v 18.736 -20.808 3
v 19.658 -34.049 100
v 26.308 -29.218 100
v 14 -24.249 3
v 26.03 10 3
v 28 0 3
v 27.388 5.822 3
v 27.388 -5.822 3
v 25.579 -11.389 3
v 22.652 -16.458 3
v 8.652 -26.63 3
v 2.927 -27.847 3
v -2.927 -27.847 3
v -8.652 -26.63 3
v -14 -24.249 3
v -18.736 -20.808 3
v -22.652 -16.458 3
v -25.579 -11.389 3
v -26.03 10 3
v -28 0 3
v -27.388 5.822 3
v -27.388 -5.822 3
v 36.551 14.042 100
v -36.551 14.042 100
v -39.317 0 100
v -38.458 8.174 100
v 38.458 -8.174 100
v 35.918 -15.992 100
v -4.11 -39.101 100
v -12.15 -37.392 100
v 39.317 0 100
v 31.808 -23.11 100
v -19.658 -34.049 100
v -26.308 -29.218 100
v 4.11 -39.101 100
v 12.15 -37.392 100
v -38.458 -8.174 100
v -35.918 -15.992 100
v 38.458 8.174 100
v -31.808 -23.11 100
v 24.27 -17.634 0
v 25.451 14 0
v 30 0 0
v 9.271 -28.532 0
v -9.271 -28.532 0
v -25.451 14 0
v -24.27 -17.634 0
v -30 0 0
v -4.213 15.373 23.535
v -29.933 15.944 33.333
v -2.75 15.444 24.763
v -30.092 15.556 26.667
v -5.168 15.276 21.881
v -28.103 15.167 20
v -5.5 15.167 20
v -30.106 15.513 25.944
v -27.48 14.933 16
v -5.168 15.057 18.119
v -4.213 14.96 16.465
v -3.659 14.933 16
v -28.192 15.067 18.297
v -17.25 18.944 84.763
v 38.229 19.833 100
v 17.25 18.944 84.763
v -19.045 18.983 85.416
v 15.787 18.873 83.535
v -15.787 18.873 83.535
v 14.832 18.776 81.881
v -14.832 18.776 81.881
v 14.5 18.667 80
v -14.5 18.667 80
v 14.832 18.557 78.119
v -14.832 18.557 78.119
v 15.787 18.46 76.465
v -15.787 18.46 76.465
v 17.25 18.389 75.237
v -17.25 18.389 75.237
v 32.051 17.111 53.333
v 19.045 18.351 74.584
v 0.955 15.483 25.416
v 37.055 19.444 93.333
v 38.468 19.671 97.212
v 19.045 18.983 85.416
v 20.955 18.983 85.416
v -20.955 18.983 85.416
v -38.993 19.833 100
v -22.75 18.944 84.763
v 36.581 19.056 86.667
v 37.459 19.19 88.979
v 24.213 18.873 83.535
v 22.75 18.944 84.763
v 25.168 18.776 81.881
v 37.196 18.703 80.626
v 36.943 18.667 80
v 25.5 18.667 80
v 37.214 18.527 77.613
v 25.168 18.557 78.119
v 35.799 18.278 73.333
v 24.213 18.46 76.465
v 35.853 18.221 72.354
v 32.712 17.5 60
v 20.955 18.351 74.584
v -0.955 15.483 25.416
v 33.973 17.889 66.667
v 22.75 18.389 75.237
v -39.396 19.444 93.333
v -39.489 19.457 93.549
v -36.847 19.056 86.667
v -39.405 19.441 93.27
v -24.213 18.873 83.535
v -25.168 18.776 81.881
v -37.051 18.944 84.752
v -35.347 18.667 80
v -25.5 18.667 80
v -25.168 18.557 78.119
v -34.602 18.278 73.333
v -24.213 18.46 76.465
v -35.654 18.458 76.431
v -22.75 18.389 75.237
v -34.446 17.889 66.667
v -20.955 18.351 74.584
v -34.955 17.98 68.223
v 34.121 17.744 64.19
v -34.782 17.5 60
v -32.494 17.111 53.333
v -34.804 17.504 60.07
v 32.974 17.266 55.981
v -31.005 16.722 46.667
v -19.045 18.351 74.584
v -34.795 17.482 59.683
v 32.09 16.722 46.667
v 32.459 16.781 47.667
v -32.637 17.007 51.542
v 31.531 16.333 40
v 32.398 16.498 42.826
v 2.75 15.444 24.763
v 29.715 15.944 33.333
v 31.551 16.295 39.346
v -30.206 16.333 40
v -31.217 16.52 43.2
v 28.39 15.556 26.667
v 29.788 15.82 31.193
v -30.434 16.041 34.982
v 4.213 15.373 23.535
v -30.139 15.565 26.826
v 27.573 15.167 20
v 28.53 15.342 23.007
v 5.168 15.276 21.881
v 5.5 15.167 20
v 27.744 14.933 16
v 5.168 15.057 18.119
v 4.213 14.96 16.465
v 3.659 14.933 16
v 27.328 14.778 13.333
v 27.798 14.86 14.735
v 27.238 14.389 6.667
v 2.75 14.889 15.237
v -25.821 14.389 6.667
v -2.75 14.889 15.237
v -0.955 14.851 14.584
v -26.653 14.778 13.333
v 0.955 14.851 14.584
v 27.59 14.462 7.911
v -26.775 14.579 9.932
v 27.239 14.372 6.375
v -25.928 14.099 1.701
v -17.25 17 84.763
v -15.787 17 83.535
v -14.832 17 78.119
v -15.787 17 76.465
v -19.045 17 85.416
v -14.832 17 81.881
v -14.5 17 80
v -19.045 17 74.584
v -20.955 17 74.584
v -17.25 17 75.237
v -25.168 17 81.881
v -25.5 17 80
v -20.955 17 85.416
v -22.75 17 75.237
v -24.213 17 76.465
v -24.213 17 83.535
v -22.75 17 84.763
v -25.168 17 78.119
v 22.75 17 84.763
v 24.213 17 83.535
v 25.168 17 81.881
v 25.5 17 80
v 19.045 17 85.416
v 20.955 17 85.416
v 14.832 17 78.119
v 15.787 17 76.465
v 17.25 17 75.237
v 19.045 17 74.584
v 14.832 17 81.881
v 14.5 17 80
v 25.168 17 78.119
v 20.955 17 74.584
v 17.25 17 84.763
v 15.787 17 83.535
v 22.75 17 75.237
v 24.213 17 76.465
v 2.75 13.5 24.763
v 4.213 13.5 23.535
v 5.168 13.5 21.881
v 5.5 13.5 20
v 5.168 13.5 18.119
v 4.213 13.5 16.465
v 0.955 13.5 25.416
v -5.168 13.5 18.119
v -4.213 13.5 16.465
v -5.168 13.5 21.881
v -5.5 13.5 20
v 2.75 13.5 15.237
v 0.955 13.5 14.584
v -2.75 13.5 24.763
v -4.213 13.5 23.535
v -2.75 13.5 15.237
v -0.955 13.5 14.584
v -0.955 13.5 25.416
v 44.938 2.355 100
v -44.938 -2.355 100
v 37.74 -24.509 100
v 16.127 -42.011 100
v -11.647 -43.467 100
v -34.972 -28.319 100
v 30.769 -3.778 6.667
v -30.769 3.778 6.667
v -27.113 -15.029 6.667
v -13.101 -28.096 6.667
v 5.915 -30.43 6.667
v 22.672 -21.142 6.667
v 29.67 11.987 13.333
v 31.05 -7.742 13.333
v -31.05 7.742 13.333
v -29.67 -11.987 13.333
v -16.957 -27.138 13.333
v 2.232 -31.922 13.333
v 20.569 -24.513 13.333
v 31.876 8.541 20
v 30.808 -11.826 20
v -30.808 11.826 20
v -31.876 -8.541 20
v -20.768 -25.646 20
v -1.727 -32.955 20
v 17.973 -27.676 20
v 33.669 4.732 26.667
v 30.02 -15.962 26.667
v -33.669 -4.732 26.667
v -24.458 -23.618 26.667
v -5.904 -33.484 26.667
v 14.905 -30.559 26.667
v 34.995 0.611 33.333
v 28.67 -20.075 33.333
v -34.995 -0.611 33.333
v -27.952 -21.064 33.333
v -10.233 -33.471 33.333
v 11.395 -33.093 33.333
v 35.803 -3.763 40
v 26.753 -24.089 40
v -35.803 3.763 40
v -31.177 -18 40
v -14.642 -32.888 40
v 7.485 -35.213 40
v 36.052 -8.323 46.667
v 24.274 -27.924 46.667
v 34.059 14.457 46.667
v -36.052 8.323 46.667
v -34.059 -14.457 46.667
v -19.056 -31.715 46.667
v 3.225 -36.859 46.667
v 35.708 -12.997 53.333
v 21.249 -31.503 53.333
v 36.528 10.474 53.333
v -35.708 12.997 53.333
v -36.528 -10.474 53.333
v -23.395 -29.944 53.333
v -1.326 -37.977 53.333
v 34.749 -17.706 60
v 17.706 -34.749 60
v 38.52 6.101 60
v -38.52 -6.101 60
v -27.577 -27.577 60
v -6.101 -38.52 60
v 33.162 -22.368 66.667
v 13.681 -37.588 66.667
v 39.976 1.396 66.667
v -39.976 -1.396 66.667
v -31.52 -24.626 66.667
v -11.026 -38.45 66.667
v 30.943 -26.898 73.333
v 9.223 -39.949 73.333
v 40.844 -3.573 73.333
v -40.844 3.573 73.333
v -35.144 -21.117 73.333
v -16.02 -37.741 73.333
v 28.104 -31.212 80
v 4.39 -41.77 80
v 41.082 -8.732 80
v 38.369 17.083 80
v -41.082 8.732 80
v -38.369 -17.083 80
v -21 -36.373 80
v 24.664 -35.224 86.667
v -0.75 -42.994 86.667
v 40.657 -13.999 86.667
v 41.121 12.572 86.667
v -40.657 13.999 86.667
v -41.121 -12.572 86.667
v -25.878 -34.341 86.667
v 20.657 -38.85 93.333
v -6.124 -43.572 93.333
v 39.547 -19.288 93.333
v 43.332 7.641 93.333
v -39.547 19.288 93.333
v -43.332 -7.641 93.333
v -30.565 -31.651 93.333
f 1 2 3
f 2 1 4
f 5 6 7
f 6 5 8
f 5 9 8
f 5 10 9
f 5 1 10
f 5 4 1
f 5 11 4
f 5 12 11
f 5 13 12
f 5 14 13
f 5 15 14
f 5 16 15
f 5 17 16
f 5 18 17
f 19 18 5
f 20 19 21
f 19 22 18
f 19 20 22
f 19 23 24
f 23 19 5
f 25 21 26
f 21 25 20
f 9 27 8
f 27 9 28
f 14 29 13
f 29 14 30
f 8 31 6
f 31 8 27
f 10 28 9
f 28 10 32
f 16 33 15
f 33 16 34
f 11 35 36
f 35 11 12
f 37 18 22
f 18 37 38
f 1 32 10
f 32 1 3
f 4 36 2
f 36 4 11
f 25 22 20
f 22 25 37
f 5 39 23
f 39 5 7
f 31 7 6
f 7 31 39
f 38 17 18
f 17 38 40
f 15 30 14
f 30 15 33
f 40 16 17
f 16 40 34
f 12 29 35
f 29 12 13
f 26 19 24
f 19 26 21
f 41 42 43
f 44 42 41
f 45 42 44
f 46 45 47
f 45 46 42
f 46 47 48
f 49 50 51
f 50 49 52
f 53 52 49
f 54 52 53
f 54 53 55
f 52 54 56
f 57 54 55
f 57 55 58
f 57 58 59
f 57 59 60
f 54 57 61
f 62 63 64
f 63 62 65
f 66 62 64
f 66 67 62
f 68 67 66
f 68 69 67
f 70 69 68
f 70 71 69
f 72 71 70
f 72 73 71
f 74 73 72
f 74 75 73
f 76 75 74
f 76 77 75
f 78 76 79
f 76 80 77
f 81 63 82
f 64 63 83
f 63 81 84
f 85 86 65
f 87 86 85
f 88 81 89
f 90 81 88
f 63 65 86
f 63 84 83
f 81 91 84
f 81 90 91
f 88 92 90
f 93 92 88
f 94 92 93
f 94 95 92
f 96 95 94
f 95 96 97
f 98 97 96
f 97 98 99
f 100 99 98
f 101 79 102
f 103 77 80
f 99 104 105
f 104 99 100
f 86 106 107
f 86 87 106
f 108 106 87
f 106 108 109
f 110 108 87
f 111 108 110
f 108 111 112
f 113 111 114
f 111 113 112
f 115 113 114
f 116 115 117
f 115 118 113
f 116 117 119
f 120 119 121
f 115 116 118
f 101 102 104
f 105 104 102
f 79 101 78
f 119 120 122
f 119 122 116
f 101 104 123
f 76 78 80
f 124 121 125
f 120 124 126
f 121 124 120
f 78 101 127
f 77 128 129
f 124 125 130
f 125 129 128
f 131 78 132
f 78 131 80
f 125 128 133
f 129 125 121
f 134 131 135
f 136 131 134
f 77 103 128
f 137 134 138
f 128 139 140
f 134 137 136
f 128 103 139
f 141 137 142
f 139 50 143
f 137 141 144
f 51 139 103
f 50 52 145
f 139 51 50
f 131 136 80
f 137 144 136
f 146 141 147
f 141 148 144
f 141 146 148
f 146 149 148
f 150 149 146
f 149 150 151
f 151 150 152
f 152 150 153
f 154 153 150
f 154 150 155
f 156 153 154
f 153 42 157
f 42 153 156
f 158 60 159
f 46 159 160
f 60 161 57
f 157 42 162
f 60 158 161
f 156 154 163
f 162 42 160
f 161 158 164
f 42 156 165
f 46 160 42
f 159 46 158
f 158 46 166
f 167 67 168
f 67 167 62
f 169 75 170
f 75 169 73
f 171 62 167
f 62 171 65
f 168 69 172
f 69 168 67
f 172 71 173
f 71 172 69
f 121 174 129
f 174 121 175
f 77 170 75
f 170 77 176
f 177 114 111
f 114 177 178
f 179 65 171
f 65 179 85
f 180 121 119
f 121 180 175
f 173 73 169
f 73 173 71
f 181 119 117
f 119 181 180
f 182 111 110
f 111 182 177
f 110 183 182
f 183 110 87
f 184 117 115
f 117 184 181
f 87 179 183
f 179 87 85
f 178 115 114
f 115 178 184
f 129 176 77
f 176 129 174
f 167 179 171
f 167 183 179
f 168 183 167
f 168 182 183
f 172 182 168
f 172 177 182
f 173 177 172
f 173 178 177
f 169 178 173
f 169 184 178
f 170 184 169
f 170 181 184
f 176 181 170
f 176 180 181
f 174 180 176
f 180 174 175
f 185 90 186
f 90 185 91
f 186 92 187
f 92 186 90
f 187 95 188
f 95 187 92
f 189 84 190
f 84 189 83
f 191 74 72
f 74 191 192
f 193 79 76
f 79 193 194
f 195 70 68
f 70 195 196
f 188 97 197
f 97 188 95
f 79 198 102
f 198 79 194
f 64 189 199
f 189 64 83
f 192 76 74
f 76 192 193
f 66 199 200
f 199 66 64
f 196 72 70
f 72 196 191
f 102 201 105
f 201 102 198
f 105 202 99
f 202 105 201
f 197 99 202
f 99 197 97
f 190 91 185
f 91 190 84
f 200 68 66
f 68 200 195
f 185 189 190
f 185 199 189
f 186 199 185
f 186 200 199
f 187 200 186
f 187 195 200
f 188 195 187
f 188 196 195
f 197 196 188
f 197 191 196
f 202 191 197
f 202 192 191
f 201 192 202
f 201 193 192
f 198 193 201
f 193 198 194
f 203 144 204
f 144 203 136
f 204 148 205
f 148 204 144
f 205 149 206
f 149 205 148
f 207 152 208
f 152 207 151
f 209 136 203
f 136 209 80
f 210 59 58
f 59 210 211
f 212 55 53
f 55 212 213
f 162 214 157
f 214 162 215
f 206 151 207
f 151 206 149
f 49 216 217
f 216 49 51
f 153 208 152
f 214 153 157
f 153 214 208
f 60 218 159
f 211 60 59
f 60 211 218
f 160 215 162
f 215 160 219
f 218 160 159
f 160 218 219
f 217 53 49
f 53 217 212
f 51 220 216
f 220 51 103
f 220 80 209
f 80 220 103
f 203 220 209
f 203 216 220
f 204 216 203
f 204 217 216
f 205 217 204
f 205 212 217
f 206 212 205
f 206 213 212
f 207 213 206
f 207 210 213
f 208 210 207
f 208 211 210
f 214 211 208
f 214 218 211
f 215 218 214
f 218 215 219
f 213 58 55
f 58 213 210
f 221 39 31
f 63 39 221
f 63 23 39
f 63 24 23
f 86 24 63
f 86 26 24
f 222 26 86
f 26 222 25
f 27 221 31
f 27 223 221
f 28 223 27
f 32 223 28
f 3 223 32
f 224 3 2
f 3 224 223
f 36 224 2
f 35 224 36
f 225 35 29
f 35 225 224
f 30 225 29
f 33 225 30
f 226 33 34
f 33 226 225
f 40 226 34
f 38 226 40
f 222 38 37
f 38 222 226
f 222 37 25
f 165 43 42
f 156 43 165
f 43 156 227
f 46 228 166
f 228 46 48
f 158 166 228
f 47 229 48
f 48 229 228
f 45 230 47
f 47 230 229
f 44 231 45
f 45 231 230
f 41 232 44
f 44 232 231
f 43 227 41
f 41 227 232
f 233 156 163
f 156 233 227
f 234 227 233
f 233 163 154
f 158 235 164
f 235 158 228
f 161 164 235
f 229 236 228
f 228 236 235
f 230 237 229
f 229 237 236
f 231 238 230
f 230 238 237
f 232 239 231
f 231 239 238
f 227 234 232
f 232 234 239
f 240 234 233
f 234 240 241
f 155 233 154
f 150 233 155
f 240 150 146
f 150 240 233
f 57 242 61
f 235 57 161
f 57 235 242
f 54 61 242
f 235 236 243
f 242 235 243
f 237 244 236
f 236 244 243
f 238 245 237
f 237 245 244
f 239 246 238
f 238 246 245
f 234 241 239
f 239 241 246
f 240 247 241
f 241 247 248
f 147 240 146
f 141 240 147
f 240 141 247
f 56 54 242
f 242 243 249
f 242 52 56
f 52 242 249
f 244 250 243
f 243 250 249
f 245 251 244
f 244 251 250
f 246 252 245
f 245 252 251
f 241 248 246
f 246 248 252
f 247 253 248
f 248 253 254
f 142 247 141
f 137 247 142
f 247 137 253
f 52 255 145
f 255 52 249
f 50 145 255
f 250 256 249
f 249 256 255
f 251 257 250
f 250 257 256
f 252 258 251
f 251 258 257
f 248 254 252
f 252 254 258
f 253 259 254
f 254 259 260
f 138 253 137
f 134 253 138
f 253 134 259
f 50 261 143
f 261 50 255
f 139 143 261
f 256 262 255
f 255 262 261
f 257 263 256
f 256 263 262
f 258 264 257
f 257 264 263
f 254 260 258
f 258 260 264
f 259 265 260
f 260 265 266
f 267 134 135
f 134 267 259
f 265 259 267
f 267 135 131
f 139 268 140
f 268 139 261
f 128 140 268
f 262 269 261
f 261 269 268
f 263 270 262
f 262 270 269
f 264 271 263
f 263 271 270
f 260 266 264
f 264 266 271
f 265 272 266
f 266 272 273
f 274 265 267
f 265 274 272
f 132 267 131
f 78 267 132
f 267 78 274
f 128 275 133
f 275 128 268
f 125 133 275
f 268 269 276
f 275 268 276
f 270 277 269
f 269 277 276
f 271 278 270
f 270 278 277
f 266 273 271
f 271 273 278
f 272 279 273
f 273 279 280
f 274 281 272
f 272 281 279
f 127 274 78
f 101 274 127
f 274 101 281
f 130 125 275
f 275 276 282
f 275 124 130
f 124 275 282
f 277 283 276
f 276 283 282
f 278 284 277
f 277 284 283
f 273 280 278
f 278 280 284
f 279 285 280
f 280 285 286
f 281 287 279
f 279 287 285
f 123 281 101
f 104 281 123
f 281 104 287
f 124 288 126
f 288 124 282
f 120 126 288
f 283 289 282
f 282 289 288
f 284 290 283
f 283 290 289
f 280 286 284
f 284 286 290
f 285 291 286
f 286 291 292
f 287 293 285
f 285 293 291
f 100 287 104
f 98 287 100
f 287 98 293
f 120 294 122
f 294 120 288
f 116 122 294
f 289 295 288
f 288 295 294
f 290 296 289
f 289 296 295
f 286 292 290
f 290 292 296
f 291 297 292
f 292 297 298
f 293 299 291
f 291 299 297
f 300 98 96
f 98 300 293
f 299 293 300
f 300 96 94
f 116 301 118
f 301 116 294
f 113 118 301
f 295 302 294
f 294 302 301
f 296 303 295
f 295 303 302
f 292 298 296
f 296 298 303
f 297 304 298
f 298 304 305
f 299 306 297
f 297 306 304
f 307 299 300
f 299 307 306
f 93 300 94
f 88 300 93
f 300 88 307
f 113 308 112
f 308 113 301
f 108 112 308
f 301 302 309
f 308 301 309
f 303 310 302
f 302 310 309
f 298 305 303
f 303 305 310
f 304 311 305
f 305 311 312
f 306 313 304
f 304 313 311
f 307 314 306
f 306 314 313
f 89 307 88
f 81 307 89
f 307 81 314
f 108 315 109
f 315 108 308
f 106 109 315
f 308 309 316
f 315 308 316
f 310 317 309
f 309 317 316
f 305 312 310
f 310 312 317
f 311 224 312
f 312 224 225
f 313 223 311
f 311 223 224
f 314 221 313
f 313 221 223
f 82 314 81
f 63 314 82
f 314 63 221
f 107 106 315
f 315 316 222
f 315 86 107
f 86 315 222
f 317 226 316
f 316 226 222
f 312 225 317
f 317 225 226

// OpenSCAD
segs=20;
h = 100;

module mag_hole() {
  rotate([90,0,0]){   
    linear_extrude(2, slices=30){
      scale([1,1,1])
        circle(d=11);
    }
  }
}
  
module holder() {
    difference() {
      // main spiral outside
      linear_extrude(h, convexity=10, twist=105, slices=15, scale=1.5){
        circle(r=30, $fn=10);
      }
      union() {  
        // inside cut
        translate([0,0,3])
        linear_extrude(h+20, convexity=10, twist=0, slices=15, scale=1.5){
          difference() {
              circle(r=28);
              translate([0,20,0]) square([60,20], center=true);
          }
        }
        // back cut
        linear_extrude(h+20, convexity=10, twist=0, slices=15, scale=1.5){
          translate([0,24,0]) square([60,20], center=true);
        }
        // magnet cuts
        translate([-20,19.0,80]) mag_hole();
        translate([20,19.0,80]) mag_hole();
        translate([0,15.5,20]) mag_hole();
        
      }
  }
}

holder();
